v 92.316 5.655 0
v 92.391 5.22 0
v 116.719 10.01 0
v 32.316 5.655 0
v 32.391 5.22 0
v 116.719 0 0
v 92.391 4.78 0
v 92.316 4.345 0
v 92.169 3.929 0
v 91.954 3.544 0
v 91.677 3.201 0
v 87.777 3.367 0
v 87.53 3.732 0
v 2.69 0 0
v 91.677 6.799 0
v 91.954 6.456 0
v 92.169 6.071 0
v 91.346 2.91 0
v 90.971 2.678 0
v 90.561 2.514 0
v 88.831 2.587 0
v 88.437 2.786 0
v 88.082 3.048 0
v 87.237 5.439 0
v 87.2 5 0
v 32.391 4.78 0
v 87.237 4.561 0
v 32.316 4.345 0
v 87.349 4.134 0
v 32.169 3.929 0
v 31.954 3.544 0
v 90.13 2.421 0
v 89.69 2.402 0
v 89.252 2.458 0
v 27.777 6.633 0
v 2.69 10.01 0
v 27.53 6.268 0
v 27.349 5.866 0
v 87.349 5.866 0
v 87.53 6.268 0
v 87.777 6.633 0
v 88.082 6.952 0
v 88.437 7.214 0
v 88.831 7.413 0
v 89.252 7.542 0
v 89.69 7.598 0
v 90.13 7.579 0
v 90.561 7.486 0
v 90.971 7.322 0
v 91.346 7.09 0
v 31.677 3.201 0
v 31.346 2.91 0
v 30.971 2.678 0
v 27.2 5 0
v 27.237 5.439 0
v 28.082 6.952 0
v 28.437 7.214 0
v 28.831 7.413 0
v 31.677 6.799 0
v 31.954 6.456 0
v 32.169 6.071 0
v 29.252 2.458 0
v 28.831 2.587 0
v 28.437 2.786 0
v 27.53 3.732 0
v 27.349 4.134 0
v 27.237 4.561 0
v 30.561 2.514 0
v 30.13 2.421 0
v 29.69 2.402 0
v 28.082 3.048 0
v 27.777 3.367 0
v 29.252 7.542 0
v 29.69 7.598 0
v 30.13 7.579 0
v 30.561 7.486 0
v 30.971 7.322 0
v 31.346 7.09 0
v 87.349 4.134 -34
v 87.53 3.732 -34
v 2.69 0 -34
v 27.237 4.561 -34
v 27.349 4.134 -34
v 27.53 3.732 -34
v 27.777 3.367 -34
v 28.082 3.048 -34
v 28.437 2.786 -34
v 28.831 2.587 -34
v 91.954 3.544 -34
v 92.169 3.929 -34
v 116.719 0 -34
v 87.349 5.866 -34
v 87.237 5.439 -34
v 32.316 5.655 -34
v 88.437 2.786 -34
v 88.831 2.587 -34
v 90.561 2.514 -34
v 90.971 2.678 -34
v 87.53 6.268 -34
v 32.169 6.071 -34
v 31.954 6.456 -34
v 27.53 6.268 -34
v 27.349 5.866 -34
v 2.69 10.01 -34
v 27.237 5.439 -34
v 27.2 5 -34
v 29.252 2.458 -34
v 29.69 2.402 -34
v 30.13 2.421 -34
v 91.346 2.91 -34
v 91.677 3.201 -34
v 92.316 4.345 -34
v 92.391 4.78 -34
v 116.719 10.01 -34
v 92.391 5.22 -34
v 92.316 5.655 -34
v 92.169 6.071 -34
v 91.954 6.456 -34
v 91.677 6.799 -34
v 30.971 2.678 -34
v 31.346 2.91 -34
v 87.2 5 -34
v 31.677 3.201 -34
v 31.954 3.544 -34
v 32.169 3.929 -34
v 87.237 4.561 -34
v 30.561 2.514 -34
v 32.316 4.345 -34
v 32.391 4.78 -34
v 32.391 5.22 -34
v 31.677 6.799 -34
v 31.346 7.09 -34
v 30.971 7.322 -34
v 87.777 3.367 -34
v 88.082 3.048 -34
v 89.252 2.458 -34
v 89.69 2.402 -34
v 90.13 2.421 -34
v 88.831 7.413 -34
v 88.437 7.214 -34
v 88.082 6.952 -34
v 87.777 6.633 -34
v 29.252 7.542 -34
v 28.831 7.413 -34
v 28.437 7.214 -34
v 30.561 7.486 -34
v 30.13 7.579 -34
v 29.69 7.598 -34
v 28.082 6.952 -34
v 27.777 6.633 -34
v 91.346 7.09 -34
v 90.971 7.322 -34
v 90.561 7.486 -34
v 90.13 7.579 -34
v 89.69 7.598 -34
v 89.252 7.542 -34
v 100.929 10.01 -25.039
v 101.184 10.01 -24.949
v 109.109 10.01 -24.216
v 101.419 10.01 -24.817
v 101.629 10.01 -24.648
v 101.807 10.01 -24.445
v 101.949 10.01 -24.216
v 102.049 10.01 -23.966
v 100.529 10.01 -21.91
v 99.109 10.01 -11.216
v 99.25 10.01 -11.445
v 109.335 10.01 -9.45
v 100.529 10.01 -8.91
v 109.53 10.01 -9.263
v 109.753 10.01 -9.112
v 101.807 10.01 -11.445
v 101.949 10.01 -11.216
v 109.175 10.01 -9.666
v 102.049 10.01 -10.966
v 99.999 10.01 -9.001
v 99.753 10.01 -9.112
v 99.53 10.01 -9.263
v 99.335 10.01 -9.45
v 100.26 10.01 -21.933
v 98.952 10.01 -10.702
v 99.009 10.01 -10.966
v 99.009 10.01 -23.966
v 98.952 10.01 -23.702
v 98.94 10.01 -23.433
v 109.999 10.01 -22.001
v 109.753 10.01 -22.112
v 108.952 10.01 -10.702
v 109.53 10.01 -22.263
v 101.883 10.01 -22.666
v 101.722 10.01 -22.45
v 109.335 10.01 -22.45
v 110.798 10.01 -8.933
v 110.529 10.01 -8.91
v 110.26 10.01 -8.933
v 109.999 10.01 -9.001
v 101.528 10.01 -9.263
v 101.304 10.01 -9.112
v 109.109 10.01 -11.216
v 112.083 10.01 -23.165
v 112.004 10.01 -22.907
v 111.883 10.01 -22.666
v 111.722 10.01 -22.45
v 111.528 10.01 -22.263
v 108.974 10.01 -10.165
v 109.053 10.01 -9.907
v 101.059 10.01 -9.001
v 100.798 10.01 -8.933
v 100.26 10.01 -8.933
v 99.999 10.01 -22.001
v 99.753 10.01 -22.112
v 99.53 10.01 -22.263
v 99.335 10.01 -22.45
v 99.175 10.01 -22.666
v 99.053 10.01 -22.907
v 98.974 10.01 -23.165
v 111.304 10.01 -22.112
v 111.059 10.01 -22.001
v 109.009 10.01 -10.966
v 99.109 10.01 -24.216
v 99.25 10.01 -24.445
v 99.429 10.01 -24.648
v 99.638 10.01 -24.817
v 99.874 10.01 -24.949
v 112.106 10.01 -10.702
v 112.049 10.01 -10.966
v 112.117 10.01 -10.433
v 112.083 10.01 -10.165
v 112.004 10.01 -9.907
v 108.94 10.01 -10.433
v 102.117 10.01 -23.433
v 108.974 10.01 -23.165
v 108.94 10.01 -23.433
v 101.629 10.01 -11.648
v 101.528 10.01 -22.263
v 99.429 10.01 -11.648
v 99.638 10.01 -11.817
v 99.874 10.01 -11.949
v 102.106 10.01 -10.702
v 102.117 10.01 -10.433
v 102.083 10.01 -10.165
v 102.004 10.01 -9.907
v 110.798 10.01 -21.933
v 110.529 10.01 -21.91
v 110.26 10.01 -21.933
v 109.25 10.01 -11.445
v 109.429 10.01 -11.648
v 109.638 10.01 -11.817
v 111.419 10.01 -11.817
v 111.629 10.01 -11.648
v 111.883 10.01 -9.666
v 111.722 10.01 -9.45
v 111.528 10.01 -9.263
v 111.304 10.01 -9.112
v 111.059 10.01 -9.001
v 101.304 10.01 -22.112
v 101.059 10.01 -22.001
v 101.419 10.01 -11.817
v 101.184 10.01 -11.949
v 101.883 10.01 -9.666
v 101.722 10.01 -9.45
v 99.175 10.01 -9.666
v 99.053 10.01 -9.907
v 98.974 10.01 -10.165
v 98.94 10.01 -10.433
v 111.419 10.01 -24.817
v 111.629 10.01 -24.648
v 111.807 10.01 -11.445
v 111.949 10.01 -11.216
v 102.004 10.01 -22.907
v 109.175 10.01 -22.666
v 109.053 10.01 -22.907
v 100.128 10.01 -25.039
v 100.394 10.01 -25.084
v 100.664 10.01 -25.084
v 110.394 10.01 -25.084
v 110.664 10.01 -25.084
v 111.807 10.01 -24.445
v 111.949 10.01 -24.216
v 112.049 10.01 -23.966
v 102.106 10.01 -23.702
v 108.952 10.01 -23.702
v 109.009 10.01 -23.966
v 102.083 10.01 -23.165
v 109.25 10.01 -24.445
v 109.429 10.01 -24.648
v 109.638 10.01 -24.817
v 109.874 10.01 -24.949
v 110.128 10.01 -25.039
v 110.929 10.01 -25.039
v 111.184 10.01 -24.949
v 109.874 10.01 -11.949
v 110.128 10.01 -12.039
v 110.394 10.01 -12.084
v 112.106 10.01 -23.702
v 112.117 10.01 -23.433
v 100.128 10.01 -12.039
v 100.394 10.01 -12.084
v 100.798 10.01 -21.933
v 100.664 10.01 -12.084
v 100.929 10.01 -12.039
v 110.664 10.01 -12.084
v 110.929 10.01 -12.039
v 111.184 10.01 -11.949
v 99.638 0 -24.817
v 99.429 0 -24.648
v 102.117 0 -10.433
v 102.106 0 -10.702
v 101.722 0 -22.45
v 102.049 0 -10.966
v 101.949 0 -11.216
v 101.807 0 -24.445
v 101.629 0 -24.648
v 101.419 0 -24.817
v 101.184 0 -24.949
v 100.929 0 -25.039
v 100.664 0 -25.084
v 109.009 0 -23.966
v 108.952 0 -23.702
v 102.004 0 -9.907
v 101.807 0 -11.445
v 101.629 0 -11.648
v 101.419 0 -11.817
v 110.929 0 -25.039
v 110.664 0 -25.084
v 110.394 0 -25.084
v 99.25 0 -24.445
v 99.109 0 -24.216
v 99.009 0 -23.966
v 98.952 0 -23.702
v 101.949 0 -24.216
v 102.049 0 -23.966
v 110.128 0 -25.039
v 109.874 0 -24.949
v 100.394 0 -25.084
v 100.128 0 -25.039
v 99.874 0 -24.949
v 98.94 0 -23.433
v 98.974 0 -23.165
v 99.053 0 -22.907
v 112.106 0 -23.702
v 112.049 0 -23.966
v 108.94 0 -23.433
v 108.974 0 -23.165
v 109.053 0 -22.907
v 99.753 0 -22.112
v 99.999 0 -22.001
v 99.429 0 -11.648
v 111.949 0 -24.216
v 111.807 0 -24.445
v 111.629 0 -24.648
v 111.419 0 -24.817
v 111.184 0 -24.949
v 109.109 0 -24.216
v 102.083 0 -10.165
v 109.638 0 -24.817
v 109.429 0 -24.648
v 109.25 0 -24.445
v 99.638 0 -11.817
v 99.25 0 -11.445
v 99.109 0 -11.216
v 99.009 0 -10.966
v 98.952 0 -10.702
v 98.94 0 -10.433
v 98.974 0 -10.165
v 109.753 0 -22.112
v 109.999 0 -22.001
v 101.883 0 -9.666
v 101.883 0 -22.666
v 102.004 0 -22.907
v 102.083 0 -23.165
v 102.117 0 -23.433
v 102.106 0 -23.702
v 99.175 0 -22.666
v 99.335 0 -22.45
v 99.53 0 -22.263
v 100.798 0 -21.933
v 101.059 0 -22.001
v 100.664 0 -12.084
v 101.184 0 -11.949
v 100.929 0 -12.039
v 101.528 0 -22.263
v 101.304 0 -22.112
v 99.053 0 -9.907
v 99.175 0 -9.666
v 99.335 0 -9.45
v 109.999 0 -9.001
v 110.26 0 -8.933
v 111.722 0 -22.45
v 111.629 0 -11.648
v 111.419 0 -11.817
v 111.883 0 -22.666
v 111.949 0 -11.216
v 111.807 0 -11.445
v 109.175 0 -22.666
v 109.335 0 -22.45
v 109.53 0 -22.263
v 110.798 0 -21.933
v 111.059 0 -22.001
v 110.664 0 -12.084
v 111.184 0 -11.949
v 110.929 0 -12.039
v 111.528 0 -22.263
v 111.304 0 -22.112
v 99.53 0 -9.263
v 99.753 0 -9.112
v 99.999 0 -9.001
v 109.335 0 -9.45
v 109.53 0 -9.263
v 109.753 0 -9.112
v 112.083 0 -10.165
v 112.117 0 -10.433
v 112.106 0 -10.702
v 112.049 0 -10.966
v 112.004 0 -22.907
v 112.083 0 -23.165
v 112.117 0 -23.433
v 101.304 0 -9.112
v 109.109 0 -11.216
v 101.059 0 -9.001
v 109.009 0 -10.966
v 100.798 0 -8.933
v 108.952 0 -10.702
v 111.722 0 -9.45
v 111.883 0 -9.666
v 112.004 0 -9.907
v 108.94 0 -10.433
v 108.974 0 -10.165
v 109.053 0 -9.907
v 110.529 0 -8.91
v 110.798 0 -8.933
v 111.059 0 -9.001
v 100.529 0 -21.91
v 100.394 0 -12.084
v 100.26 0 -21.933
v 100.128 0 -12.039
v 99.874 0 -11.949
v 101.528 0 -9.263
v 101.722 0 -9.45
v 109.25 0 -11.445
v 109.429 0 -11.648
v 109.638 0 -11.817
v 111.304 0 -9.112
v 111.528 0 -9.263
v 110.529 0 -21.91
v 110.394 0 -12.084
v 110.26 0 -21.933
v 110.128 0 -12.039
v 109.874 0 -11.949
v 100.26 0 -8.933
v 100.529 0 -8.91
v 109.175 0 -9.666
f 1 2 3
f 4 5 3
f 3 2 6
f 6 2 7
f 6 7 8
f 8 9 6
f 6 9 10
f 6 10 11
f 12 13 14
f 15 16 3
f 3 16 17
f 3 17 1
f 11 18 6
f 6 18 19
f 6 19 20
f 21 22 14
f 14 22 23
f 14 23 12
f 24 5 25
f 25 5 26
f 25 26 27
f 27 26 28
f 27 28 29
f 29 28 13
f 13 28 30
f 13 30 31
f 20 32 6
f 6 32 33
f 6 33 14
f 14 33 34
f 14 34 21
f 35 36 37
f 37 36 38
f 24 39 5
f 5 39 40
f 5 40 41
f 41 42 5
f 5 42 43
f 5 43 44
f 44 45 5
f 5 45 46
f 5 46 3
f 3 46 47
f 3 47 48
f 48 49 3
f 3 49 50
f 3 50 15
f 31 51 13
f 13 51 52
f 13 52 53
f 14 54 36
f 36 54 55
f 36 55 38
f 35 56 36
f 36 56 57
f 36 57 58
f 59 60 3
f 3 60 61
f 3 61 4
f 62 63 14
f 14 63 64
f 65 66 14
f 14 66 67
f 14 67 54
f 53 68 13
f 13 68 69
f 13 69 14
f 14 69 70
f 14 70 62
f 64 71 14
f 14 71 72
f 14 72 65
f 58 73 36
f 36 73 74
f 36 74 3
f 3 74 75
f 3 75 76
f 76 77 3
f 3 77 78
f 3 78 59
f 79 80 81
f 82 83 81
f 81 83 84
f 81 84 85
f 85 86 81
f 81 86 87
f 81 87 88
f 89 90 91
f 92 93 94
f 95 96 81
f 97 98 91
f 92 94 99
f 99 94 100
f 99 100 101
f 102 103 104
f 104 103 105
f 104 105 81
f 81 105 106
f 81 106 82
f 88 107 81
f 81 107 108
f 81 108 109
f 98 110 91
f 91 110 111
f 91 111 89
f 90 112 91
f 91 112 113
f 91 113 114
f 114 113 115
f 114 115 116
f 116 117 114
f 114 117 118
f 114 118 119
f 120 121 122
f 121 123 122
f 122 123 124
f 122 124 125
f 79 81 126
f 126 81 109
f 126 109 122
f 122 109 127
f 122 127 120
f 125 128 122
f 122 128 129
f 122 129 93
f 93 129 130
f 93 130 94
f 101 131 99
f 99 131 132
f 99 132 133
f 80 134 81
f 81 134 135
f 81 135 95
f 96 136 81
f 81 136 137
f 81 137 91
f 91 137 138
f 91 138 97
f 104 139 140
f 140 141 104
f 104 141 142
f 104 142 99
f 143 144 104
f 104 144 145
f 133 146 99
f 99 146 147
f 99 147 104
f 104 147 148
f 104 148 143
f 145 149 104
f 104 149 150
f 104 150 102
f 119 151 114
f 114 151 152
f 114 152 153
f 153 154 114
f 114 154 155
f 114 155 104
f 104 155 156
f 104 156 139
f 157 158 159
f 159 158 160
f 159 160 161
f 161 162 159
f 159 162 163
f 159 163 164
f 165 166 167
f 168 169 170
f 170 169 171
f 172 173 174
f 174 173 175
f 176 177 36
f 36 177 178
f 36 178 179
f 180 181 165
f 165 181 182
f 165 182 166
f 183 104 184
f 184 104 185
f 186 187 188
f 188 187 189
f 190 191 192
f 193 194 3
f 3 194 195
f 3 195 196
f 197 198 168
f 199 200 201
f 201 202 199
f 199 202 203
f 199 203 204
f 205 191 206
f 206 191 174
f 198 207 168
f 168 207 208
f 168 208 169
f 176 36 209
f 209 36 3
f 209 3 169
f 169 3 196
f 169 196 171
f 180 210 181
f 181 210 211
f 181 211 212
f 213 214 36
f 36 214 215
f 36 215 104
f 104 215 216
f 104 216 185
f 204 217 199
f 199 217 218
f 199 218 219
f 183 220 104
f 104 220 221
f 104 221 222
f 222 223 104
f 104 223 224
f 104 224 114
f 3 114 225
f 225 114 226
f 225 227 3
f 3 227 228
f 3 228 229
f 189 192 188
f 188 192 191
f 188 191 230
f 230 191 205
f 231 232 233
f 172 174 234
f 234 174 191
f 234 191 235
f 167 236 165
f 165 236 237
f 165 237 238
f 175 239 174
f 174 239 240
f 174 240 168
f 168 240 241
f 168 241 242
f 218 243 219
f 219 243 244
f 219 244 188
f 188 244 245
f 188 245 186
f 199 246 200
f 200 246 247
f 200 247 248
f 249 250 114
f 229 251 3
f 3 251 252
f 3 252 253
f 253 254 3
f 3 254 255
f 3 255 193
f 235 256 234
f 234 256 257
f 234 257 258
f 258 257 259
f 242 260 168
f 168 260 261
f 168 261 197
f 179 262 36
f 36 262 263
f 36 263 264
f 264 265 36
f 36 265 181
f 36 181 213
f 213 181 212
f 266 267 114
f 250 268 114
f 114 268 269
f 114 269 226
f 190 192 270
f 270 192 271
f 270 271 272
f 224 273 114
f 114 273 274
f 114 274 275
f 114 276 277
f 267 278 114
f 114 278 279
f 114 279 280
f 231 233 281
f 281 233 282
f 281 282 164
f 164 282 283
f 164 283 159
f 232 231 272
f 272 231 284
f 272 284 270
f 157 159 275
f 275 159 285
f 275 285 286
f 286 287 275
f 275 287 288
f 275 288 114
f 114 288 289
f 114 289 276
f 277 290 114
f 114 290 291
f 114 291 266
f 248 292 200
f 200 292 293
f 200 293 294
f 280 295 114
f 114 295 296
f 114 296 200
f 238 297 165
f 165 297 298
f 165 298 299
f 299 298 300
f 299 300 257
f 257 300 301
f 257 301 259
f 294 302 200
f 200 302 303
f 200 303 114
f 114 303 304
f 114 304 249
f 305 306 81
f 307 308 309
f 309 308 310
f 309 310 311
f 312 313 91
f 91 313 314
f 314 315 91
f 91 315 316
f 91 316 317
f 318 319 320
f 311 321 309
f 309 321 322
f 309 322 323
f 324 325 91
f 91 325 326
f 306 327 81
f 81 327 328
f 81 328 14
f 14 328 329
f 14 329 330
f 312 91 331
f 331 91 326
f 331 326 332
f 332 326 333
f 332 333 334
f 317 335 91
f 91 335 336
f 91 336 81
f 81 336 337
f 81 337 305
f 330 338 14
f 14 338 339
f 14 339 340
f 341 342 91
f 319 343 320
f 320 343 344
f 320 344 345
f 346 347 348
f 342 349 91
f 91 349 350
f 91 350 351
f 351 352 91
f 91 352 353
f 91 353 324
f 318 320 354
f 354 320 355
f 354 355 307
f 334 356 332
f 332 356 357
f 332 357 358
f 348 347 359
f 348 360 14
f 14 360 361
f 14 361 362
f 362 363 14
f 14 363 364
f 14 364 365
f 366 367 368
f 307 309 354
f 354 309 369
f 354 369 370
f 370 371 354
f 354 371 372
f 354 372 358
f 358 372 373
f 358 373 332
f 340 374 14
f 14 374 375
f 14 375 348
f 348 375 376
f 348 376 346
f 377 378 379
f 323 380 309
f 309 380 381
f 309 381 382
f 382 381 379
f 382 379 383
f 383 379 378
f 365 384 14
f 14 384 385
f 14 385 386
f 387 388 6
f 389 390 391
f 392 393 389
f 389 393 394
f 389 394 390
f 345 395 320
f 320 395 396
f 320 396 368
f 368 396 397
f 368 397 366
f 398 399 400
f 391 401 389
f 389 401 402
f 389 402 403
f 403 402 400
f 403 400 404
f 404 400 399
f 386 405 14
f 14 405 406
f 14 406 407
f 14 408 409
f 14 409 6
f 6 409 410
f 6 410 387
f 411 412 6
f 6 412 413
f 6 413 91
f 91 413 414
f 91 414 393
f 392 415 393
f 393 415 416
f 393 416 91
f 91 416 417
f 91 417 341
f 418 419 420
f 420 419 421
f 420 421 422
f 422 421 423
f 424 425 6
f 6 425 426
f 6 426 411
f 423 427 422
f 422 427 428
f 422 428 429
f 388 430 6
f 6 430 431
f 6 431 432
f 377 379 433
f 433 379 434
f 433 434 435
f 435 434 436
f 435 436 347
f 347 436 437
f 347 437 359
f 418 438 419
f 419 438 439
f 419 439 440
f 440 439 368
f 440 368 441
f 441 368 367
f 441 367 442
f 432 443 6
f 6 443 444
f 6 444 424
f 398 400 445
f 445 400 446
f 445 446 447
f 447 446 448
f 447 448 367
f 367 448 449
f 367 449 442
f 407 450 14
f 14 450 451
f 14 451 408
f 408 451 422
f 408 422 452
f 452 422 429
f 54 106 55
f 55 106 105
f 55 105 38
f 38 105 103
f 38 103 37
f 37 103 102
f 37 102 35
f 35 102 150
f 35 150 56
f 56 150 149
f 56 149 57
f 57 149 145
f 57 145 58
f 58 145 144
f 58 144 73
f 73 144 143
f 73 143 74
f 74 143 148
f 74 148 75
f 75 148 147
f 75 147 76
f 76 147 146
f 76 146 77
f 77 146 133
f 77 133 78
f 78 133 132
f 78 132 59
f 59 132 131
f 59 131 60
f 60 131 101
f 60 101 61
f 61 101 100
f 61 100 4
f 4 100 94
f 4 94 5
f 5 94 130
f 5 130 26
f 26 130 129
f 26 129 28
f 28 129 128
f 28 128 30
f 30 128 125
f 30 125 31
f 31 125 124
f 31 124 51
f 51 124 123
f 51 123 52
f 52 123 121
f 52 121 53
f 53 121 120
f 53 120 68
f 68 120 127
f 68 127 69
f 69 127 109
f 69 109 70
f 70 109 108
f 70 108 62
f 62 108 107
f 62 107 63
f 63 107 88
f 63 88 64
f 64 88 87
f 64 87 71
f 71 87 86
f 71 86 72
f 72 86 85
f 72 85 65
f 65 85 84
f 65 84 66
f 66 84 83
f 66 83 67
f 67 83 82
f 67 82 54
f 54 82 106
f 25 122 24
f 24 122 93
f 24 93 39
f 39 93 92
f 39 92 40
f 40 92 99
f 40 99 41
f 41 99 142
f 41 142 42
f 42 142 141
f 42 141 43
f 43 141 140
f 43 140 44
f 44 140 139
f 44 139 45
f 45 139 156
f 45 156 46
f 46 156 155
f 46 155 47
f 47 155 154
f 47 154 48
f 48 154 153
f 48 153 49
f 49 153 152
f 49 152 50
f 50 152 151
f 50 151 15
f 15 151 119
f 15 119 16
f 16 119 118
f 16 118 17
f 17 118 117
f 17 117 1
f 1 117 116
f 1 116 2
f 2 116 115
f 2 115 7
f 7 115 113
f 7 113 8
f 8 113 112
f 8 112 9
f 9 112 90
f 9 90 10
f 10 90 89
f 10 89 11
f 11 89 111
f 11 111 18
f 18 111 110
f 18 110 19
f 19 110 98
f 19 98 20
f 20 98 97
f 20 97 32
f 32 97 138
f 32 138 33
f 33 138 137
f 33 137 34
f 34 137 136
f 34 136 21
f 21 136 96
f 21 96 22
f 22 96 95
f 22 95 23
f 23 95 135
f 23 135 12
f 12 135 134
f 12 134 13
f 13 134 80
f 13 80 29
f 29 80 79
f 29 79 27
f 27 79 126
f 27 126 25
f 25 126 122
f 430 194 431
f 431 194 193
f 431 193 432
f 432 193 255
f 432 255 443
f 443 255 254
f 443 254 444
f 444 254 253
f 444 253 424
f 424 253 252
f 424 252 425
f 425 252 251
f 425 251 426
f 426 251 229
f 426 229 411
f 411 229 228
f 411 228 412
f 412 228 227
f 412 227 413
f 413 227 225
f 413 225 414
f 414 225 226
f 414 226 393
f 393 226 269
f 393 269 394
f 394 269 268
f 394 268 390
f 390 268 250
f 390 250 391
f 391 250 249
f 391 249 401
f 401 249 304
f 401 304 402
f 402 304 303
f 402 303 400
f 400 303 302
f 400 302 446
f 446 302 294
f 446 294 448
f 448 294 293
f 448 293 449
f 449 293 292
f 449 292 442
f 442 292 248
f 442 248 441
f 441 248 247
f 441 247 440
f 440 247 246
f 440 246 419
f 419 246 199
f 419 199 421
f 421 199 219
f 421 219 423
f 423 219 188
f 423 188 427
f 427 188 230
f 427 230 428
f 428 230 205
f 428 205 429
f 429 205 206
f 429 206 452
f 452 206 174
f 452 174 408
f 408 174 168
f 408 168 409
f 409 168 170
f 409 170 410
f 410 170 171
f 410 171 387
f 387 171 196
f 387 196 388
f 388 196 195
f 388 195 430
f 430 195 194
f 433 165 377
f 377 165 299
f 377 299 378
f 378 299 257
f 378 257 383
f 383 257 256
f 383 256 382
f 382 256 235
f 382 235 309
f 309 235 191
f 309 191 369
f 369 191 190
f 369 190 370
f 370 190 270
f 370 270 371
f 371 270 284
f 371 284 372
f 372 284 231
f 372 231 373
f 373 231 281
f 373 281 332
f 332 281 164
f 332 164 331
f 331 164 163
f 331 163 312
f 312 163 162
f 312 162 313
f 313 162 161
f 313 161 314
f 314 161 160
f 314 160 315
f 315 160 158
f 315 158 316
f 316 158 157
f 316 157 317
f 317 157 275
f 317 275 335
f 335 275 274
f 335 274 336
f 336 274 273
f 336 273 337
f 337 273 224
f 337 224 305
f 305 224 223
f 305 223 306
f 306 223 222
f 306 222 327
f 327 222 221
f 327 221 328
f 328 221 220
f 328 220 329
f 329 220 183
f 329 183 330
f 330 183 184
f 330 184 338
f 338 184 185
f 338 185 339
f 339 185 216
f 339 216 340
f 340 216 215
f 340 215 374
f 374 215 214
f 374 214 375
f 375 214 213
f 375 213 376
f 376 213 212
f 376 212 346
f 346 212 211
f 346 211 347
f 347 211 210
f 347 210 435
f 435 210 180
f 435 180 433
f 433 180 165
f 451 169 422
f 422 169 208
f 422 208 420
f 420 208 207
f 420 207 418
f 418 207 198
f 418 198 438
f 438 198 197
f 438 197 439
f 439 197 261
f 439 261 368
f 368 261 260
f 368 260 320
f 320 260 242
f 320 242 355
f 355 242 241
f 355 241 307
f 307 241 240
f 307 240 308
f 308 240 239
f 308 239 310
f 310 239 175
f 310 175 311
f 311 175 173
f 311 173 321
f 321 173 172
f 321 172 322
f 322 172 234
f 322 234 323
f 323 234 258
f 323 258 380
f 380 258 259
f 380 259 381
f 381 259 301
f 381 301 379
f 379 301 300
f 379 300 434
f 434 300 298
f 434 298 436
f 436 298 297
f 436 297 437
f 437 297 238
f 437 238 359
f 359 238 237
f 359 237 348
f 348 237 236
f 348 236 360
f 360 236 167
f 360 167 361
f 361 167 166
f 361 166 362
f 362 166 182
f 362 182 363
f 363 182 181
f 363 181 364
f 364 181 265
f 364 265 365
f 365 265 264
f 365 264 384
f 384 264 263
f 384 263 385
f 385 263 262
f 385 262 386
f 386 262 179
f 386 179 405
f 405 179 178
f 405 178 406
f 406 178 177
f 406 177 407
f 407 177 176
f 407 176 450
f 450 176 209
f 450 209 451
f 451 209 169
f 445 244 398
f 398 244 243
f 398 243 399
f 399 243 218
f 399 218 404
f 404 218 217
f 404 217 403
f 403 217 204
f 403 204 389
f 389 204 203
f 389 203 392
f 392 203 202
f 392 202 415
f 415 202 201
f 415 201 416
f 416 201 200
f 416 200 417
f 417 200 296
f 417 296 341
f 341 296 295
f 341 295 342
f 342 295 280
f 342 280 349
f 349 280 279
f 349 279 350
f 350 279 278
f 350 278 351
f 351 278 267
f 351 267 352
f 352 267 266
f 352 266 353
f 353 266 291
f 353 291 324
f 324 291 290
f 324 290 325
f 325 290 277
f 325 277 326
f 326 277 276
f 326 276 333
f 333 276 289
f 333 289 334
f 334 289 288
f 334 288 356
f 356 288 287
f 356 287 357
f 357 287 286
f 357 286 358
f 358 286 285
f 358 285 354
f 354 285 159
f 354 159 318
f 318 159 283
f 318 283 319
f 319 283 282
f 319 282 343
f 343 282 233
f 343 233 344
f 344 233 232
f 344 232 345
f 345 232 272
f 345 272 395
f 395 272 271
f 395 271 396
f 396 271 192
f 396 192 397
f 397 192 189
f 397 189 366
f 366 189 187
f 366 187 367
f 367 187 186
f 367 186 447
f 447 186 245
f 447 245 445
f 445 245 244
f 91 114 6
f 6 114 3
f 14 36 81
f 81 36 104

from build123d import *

# Parameters (mm, degrees)
SKETCH1_W           = 114.02881
SKETCH1_H           = 34
BOSS_EXTRUDE1_DEPTH = 10.01
SKETCH8_R           = 2.6
CUT_EXTRUDE3_DEPTH  = 120.410090068
SKETCH11_R          = 1.59
CUT_EXTRUDE6_DEPTH  = 120.410090068
SKETCH12_W          = 34
SKETCH12_H          = 10.01
BOSS_EXTRUDE2_DEPTH = 2.69
SKETCH14_W          = 34
SKETCH14_H          = 10.01
CUT_EXTRUDE7_DEPTH  = 2.69


with BuildPart() as part:
    # Sketch1 → Boss-Extrude1 (new body)
    with BuildSketch(Plane(origin=(0, 0, 0), x_dir=(1, 0, 0), z_dir=(0, 1, 0))):
        with Locations((57.014405, 17)):
            Rectangle(SKETCH1_W, SKETCH1_H)
    extrude(amount=BOSS_EXTRUDE1_DEPTH)

    # Sketch8 → Cut-Extrude3 (cut, through all)
    with BuildSketch(Plane(origin=(0, 0, -34), x_dir=(-1, 0, 0), z_dir=(0, 0, -1))):
        with Locations((-89.8, 5)):
            Circle(SKETCH8_R)
        with Locations((-29.8, 5)):
            Circle(SKETCH8_R)
    extrude(amount=-CUT_EXTRUDE3_DEPTH, mode=Mode.SUBTRACT)

    # Sketch11 → Cut-Extrude6 (cut, through all)
    with BuildSketch(Plane(origin=(0, 10.01, 0), x_dir=(1, 0, 0), z_dir=(0, 1, 0))):
        with Locations(Location((110.52881, 10.5, 0), (0, 0, 270))):
            Circle(SKETCH11_R)
        with Locations(Location((110.52881, 23.5, 0), (0, 0, 270))):
            Circle(SKETCH11_R)
        with Locations(Location((100.52881, 10.5, 0), (0, 0, 270))):
            Circle(SKETCH11_R)
        with Locations(Location((100.52881, 23.5, 0), (0, 0, 270))):
            Circle(SKETCH11_R)
    extrude(amount=-CUT_EXTRUDE6_DEPTH, mode=Mode.SUBTRACT)

    # Sketch12 → Boss-Extrude2 (add)
    with BuildSketch(Plane(origin=(114.02881, 0, 0), x_dir=(0, 0, -1), z_dir=(1, 0, 0))):
        with Locations((17, 5.005)):
            Rectangle(SKETCH12_W, SKETCH12_H)
    extrude(amount=BOSS_EXTRUDE2_DEPTH)

    # Sketch14 → Cut-Extrude7 (cut)
    with BuildSketch(Plane.ZY):
        with Locations((-17, 5.005)):
            Rectangle(SKETCH14_W, SKETCH14_H)
    extrude(amount=-CUT_EXTRUDE7_DEPTH, mode=Mode.SUBTRACT)


solid = part.part
